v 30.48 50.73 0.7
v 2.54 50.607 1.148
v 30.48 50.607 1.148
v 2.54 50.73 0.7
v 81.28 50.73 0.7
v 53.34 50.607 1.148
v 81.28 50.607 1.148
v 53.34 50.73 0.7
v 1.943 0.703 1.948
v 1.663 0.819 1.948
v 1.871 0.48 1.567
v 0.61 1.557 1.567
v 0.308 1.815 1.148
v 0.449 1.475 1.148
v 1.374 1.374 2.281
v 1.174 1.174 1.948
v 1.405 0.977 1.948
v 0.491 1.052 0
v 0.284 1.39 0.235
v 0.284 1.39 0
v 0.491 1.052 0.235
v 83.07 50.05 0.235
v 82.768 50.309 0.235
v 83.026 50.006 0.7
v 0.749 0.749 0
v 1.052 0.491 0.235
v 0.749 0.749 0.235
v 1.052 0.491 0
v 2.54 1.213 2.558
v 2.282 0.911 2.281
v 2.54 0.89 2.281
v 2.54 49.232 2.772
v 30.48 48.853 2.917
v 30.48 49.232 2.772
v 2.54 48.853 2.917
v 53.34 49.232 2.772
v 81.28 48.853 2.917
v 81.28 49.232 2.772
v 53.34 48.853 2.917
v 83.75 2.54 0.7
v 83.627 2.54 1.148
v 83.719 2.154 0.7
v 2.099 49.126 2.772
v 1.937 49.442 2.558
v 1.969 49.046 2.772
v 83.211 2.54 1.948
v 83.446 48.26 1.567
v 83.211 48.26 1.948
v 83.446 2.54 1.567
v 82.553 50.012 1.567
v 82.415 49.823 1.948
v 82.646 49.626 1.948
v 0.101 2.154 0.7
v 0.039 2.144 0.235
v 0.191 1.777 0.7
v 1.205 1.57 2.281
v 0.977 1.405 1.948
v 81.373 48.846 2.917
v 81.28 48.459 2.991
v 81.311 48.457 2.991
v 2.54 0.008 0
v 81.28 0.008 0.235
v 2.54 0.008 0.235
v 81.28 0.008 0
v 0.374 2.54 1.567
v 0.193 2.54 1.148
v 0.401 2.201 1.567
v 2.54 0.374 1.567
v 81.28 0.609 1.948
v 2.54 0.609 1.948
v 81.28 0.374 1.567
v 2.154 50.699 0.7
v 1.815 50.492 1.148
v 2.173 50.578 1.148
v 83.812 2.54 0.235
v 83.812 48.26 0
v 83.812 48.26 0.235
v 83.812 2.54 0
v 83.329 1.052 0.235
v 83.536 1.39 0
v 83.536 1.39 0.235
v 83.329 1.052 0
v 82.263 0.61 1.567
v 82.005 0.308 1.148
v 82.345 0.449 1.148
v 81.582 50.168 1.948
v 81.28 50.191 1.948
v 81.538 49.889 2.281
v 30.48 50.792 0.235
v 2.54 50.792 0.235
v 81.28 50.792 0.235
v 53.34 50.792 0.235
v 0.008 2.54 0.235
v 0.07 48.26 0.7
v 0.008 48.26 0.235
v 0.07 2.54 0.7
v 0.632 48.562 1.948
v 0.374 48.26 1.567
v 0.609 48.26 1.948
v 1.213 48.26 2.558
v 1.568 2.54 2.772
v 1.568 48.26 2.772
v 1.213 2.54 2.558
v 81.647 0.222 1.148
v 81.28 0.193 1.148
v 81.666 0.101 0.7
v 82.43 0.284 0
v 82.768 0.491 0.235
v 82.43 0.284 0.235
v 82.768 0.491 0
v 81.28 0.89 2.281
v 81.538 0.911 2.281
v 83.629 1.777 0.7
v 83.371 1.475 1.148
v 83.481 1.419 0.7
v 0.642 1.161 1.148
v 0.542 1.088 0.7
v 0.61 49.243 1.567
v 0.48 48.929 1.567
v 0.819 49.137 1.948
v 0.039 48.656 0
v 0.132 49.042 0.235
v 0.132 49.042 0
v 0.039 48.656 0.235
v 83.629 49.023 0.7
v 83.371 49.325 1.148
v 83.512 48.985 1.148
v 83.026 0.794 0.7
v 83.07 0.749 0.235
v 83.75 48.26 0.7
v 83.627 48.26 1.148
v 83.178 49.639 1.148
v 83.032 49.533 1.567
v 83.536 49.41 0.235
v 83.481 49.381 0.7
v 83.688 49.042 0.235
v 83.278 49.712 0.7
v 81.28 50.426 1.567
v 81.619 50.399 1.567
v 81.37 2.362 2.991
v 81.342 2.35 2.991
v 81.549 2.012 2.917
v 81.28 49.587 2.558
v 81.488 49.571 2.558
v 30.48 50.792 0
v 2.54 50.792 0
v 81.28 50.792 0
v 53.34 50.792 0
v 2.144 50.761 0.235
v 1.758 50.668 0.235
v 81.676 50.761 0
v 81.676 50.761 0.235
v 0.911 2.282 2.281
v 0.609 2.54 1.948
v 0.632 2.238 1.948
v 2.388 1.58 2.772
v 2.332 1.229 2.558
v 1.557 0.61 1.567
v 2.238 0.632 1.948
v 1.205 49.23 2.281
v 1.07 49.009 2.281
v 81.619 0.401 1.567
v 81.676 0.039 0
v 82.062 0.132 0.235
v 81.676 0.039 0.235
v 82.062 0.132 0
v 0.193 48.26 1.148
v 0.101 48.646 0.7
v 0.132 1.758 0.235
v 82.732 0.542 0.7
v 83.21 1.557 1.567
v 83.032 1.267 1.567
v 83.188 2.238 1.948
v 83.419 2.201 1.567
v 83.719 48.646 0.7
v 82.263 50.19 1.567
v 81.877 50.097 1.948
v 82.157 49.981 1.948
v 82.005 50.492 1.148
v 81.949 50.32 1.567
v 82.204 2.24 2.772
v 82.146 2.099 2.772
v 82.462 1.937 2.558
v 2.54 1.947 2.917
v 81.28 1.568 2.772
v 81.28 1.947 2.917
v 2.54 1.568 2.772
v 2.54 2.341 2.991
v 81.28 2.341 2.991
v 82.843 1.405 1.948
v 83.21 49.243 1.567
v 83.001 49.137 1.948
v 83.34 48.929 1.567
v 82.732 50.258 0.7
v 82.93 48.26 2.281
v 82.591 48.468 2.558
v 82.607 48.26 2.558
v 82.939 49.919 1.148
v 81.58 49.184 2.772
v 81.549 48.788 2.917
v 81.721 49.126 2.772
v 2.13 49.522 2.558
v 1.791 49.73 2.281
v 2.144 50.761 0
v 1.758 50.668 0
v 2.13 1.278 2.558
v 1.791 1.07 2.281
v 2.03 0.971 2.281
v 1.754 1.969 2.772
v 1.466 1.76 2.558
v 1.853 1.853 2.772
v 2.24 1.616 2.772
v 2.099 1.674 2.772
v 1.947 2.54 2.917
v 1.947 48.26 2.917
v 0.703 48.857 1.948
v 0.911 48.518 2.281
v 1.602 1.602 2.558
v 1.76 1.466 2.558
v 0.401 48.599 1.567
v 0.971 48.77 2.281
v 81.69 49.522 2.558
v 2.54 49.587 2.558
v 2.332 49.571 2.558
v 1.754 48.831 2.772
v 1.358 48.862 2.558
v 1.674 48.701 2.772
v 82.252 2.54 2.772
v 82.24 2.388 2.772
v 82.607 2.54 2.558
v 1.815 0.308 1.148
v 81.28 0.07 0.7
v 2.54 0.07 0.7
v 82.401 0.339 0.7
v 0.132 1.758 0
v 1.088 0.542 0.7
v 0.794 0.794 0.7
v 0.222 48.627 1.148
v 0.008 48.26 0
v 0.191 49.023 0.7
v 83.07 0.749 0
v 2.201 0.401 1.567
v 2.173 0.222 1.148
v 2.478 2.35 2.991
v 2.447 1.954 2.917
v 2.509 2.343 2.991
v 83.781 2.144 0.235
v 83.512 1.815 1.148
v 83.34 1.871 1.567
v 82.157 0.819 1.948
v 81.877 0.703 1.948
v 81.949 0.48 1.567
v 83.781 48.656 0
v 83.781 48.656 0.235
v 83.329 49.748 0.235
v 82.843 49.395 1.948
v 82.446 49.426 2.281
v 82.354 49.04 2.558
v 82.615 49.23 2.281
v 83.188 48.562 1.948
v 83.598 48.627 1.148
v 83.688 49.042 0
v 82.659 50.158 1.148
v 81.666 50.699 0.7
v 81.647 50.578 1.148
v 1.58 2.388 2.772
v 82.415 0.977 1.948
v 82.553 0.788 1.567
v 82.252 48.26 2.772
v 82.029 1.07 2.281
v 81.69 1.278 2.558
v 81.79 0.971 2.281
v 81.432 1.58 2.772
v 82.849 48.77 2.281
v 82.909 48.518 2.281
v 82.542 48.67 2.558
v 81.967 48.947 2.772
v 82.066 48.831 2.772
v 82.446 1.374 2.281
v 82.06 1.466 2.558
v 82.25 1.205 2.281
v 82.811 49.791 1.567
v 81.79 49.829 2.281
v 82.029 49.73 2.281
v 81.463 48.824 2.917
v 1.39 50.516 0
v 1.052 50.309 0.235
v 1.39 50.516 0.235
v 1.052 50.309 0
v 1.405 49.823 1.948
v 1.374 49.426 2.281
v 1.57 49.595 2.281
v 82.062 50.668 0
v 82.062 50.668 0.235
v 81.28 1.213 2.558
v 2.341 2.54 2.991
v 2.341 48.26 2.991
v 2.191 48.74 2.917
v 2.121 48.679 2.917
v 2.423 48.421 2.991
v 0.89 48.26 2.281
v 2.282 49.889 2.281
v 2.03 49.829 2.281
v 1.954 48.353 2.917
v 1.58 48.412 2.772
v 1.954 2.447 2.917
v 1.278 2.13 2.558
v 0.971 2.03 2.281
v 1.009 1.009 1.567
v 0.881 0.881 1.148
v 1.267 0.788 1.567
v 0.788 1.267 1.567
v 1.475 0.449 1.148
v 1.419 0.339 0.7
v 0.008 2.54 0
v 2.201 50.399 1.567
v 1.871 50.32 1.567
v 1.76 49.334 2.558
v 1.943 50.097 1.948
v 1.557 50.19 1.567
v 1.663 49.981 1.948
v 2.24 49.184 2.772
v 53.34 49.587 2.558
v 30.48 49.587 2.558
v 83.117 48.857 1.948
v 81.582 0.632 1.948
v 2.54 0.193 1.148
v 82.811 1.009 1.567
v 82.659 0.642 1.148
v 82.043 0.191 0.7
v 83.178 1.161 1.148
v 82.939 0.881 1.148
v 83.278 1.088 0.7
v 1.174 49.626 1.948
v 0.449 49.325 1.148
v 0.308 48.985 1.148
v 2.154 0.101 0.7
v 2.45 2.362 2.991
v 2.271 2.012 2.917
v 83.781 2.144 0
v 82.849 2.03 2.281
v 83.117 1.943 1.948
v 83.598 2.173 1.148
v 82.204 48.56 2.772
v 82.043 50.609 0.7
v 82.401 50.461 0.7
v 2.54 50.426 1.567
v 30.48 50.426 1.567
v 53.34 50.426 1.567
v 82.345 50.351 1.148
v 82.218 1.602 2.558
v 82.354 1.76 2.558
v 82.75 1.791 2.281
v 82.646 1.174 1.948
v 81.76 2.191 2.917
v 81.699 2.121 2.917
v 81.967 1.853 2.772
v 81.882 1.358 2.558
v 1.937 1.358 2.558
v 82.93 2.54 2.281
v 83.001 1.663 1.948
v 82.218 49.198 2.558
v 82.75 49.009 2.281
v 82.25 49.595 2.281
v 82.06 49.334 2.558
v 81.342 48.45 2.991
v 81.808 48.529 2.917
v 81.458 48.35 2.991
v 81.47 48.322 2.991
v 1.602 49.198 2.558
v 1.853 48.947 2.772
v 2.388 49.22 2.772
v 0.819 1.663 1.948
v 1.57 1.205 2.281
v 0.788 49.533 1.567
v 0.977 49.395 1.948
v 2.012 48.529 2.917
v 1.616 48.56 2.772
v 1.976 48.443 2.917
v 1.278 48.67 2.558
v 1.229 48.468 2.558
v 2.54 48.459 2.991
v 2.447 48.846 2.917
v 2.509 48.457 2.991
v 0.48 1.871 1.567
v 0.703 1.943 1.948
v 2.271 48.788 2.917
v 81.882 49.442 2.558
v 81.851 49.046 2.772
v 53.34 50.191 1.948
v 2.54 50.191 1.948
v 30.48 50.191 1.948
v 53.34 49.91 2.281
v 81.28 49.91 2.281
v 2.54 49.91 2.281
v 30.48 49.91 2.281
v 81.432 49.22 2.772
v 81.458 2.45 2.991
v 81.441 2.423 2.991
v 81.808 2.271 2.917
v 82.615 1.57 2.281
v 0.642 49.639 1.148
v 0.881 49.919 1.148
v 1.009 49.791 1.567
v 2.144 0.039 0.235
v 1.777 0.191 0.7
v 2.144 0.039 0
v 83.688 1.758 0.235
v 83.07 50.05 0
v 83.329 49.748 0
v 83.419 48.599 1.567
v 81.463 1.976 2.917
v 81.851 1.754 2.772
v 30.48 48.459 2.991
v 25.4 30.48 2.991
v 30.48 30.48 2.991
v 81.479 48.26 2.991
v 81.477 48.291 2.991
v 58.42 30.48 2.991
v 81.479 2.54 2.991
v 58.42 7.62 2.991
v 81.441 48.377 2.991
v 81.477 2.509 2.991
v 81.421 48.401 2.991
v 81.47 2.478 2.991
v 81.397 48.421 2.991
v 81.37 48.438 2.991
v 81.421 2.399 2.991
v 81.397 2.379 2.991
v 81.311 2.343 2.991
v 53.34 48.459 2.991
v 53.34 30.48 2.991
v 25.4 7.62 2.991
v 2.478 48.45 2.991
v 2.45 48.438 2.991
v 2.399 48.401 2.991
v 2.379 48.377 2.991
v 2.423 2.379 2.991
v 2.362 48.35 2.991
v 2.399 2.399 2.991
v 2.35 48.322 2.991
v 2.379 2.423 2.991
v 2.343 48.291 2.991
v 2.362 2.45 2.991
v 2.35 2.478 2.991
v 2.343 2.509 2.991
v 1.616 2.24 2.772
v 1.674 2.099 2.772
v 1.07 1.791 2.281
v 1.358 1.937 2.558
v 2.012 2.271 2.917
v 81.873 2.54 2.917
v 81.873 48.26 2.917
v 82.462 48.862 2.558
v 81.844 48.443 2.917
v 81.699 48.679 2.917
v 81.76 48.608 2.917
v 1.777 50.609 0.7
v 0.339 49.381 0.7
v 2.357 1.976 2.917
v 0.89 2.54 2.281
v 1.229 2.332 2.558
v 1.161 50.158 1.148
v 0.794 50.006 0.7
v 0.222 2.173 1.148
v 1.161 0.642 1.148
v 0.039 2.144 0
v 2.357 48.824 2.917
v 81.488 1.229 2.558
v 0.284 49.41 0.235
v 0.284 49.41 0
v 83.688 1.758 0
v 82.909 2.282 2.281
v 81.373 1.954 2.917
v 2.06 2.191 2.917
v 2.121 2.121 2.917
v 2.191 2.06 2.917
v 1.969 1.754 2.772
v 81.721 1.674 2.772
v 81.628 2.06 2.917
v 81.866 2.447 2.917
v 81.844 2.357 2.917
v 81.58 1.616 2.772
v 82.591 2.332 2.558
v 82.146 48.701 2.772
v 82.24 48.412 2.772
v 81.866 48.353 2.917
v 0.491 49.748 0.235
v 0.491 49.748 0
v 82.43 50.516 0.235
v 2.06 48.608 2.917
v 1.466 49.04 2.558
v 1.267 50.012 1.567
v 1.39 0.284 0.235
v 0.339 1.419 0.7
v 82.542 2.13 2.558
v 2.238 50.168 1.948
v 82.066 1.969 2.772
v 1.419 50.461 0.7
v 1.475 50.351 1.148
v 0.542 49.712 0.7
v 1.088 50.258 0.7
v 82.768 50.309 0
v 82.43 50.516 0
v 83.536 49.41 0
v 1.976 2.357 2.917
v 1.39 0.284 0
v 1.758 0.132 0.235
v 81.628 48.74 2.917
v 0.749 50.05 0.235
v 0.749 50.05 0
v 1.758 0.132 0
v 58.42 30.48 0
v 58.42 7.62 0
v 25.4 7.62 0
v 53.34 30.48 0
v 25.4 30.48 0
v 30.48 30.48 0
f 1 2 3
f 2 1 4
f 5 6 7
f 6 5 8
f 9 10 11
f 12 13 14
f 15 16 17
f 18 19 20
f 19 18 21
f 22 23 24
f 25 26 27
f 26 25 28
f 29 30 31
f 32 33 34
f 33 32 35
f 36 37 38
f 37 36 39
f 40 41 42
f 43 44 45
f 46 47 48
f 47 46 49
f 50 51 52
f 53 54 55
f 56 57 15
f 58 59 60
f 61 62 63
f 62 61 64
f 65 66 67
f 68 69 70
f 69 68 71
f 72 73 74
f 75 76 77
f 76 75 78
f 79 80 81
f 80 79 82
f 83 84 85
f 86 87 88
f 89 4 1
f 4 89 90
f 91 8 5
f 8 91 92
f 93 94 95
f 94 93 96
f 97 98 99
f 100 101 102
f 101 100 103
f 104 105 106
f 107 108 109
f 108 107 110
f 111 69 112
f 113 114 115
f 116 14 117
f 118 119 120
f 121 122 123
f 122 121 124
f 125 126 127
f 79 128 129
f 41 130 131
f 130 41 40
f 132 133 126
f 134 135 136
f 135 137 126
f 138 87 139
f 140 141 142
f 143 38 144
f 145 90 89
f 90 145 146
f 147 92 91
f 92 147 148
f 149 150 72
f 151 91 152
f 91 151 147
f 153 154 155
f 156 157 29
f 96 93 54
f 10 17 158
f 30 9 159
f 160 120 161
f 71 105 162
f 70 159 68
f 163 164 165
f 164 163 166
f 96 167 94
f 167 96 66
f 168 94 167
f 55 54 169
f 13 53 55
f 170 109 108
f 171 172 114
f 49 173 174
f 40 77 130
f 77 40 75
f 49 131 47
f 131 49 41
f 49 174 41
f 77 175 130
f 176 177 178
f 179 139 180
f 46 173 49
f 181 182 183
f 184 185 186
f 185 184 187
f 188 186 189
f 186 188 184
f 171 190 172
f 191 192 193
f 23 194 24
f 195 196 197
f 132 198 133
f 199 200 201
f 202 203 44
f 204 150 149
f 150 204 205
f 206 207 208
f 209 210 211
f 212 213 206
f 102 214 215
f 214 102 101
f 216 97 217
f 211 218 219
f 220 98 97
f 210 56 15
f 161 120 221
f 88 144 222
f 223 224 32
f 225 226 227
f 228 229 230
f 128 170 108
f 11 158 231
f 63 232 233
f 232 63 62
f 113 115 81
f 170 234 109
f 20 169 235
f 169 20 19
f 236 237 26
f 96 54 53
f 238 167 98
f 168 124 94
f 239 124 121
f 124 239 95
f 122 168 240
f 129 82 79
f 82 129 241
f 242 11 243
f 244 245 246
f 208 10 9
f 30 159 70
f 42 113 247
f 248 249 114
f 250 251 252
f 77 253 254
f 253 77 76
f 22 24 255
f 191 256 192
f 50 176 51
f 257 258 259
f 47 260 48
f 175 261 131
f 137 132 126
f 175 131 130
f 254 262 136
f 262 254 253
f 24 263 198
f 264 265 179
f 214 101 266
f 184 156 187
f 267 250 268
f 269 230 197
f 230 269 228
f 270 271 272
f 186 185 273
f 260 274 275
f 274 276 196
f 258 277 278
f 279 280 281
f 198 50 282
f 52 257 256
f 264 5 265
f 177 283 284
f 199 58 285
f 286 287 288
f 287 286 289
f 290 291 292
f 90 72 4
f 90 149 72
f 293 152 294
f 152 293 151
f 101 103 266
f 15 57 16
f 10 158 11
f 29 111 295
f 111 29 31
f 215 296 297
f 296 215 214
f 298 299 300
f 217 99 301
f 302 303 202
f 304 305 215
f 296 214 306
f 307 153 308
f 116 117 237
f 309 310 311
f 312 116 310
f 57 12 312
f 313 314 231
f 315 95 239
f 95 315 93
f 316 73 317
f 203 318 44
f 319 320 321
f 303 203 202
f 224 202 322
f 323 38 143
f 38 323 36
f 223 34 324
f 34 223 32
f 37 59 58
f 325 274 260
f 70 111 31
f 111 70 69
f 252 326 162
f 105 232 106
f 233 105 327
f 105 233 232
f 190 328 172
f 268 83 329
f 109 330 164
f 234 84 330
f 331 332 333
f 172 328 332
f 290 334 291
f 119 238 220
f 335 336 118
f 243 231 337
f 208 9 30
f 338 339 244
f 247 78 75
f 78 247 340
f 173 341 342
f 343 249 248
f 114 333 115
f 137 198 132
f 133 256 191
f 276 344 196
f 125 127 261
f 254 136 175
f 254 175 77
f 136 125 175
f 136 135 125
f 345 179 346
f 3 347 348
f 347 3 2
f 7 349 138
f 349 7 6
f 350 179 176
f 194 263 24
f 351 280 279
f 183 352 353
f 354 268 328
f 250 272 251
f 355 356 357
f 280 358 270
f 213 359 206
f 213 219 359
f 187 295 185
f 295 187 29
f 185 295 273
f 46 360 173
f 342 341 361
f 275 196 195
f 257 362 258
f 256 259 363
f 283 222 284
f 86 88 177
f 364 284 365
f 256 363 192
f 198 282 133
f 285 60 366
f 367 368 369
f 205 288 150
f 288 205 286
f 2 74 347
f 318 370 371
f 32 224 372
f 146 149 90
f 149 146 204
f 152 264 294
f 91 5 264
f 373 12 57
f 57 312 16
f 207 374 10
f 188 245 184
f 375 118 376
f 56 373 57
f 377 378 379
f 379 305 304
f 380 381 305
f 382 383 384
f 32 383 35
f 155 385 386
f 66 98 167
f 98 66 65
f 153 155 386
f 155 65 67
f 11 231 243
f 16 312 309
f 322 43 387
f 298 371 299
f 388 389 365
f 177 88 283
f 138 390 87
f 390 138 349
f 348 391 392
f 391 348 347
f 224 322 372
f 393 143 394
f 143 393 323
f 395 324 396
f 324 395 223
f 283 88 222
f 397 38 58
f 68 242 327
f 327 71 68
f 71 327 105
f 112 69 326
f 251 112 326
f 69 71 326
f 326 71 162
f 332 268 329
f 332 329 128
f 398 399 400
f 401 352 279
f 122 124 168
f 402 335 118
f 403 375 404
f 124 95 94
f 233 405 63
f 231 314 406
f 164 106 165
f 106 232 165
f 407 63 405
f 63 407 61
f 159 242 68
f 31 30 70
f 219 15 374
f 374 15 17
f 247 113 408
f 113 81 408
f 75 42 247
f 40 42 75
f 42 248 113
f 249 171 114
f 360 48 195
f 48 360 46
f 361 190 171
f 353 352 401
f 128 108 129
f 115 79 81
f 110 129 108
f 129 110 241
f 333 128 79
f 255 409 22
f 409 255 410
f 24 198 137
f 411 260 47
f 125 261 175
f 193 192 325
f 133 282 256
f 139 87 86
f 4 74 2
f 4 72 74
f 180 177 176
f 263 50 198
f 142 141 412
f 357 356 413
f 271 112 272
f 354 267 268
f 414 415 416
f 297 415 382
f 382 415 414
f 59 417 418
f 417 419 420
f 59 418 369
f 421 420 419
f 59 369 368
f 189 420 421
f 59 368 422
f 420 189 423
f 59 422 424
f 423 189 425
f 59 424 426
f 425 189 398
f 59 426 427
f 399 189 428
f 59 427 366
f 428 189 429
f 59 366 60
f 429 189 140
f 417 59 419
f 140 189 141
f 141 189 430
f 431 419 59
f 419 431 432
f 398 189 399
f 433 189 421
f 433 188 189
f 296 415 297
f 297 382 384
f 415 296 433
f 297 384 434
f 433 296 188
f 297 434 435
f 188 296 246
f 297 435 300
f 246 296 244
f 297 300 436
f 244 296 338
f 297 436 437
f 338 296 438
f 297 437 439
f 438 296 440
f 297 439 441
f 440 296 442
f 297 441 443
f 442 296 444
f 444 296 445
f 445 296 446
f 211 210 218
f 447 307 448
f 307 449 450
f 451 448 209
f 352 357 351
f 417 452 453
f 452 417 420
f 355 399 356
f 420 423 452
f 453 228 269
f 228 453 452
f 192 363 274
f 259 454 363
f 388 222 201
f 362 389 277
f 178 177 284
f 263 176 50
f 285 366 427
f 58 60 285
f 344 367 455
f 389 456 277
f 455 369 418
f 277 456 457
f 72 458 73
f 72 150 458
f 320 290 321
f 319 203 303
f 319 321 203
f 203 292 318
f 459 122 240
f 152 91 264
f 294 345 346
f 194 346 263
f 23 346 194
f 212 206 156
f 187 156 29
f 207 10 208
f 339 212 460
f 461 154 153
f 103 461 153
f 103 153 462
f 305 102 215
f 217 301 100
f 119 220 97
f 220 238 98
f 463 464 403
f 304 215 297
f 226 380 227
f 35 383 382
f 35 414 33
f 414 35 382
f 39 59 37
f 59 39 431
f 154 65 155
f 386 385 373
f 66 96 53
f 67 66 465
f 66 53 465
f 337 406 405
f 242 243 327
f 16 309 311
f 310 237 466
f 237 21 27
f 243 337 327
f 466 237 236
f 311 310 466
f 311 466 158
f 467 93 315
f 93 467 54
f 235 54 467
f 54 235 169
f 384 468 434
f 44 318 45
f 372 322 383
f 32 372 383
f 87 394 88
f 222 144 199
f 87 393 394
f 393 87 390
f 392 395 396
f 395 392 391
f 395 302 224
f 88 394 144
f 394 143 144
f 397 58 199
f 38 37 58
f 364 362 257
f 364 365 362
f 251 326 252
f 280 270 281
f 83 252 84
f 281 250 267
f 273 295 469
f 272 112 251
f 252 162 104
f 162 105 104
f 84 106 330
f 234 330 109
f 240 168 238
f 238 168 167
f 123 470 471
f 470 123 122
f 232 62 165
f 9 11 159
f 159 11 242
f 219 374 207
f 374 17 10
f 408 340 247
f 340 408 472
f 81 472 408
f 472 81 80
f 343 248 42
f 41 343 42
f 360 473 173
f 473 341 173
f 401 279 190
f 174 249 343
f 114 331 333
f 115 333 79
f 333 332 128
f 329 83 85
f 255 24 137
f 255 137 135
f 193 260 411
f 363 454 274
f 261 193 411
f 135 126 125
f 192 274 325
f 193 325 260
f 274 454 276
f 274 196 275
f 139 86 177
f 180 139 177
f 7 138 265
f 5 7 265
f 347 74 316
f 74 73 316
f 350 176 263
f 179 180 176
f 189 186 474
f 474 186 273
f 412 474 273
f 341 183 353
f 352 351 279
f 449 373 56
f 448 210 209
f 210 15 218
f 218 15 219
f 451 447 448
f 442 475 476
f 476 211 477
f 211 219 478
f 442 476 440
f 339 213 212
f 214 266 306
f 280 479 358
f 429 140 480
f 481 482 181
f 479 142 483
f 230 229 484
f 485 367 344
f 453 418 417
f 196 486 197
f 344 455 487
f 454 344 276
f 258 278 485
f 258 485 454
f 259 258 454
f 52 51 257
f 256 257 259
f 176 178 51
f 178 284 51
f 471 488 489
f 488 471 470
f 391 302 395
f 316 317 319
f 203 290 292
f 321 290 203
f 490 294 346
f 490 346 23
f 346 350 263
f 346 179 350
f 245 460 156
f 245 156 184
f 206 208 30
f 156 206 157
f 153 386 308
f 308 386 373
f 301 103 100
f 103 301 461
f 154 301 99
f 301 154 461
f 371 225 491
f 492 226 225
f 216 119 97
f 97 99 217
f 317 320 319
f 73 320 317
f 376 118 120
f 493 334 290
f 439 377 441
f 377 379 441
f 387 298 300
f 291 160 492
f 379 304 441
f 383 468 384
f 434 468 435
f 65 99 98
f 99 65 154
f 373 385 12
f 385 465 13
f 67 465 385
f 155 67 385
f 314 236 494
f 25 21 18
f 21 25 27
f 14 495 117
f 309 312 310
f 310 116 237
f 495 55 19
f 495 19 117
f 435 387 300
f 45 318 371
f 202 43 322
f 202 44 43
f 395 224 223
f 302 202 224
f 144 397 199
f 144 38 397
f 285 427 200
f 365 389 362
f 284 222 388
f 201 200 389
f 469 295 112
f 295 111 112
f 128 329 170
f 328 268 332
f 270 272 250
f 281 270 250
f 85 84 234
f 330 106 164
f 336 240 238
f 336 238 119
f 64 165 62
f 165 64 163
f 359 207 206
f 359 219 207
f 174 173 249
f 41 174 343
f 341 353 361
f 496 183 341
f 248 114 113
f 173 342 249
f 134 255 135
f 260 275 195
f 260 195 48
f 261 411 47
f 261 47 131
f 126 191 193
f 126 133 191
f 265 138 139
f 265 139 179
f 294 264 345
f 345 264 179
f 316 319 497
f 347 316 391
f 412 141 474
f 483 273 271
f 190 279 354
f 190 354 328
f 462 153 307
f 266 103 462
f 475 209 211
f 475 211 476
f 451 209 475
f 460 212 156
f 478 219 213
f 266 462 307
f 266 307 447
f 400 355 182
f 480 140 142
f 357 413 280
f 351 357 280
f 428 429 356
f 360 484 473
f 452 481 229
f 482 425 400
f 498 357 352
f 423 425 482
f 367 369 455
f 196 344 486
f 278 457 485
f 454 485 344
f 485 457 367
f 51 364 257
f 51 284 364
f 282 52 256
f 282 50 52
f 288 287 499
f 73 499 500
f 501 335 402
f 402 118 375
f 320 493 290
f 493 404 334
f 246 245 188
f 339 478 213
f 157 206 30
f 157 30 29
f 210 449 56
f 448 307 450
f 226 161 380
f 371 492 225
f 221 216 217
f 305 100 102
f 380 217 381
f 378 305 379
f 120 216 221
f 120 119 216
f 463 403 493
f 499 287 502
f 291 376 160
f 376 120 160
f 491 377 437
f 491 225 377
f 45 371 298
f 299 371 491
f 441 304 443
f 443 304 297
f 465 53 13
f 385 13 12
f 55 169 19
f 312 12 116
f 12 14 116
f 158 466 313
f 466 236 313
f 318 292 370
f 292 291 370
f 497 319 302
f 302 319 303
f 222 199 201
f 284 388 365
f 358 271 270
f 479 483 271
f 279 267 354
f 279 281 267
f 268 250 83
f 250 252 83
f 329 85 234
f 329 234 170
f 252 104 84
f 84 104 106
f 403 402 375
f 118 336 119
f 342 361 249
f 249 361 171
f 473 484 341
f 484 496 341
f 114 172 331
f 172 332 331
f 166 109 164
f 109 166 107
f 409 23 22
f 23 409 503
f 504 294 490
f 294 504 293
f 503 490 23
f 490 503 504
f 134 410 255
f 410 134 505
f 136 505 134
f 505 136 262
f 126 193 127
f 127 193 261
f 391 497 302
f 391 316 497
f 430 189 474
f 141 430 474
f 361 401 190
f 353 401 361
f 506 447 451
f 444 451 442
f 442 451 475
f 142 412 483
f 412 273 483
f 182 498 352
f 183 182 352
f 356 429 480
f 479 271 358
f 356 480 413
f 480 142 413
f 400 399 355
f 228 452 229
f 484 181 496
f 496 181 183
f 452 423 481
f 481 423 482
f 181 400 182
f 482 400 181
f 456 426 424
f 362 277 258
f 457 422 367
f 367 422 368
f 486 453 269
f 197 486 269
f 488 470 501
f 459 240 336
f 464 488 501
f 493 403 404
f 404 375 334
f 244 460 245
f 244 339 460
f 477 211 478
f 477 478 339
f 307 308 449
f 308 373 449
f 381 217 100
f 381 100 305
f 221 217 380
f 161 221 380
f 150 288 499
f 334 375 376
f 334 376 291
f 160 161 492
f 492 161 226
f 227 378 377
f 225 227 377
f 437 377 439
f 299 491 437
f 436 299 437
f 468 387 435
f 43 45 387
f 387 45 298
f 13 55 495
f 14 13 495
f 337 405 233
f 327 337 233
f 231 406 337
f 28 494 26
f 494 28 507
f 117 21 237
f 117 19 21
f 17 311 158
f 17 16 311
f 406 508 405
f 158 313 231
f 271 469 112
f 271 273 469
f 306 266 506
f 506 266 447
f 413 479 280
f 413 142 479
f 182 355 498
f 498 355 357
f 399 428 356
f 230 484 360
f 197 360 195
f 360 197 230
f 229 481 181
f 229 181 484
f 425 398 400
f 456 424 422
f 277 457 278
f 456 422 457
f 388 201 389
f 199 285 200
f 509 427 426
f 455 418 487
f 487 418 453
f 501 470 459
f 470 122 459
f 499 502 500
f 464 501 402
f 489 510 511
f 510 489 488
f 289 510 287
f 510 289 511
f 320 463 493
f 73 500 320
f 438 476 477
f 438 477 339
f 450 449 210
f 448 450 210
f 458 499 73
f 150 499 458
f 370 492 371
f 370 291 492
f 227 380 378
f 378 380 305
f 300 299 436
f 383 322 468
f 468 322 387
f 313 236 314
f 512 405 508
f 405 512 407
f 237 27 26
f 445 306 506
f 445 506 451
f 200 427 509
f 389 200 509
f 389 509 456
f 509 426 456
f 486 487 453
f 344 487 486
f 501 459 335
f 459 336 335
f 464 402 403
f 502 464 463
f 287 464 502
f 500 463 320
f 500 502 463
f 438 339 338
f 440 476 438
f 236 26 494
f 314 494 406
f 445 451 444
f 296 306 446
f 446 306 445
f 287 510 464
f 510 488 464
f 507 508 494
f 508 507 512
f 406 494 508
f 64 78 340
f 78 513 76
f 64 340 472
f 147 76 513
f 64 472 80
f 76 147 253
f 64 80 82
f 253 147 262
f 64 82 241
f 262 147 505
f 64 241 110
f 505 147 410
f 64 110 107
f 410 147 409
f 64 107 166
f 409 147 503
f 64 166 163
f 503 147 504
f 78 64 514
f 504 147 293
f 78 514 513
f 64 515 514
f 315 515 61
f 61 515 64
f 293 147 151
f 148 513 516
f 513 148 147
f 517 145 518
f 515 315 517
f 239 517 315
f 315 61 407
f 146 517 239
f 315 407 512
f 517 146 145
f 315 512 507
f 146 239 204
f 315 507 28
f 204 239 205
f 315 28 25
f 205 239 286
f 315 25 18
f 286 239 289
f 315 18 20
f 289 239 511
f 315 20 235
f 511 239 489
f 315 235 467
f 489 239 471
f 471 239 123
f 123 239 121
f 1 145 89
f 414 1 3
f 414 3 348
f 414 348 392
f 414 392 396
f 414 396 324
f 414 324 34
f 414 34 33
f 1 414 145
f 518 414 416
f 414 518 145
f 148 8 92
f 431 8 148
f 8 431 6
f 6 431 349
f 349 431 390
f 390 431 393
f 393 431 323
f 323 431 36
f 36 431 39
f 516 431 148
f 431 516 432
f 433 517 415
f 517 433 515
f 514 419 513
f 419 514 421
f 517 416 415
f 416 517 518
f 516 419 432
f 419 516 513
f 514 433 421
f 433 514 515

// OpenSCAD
// file: base.scad
include <smooth_prim.scad>

function mm(mil) = mil * 0.0254;
x = mm(3300);
y = mm(2000);
r = mm(100);
large_num = 200;

module case(){
    translate([0, 0, -r])
    difference (){
        SmoothCube([x, y, 2* r], r);
        translate([0, 0, r - large_num])
        cube(size=[x, y, large_num]);
    }
}

// case();
// main file
include <base.scad>
include <smooth_prim.scad>

smooth_r = 0.7 * r;
thickness = 3;


scale([1, 1, thickness / r])
difference(){
    case();
    translate([mm(1200), mm(1100), -0.5 * large_num])
    cube([mm(900), mm(900), large_num]);
    translate([mm(1000), mm(300), -0.5 * large_num])
    cube([mm(1300), mm(900), large_num]);
}
